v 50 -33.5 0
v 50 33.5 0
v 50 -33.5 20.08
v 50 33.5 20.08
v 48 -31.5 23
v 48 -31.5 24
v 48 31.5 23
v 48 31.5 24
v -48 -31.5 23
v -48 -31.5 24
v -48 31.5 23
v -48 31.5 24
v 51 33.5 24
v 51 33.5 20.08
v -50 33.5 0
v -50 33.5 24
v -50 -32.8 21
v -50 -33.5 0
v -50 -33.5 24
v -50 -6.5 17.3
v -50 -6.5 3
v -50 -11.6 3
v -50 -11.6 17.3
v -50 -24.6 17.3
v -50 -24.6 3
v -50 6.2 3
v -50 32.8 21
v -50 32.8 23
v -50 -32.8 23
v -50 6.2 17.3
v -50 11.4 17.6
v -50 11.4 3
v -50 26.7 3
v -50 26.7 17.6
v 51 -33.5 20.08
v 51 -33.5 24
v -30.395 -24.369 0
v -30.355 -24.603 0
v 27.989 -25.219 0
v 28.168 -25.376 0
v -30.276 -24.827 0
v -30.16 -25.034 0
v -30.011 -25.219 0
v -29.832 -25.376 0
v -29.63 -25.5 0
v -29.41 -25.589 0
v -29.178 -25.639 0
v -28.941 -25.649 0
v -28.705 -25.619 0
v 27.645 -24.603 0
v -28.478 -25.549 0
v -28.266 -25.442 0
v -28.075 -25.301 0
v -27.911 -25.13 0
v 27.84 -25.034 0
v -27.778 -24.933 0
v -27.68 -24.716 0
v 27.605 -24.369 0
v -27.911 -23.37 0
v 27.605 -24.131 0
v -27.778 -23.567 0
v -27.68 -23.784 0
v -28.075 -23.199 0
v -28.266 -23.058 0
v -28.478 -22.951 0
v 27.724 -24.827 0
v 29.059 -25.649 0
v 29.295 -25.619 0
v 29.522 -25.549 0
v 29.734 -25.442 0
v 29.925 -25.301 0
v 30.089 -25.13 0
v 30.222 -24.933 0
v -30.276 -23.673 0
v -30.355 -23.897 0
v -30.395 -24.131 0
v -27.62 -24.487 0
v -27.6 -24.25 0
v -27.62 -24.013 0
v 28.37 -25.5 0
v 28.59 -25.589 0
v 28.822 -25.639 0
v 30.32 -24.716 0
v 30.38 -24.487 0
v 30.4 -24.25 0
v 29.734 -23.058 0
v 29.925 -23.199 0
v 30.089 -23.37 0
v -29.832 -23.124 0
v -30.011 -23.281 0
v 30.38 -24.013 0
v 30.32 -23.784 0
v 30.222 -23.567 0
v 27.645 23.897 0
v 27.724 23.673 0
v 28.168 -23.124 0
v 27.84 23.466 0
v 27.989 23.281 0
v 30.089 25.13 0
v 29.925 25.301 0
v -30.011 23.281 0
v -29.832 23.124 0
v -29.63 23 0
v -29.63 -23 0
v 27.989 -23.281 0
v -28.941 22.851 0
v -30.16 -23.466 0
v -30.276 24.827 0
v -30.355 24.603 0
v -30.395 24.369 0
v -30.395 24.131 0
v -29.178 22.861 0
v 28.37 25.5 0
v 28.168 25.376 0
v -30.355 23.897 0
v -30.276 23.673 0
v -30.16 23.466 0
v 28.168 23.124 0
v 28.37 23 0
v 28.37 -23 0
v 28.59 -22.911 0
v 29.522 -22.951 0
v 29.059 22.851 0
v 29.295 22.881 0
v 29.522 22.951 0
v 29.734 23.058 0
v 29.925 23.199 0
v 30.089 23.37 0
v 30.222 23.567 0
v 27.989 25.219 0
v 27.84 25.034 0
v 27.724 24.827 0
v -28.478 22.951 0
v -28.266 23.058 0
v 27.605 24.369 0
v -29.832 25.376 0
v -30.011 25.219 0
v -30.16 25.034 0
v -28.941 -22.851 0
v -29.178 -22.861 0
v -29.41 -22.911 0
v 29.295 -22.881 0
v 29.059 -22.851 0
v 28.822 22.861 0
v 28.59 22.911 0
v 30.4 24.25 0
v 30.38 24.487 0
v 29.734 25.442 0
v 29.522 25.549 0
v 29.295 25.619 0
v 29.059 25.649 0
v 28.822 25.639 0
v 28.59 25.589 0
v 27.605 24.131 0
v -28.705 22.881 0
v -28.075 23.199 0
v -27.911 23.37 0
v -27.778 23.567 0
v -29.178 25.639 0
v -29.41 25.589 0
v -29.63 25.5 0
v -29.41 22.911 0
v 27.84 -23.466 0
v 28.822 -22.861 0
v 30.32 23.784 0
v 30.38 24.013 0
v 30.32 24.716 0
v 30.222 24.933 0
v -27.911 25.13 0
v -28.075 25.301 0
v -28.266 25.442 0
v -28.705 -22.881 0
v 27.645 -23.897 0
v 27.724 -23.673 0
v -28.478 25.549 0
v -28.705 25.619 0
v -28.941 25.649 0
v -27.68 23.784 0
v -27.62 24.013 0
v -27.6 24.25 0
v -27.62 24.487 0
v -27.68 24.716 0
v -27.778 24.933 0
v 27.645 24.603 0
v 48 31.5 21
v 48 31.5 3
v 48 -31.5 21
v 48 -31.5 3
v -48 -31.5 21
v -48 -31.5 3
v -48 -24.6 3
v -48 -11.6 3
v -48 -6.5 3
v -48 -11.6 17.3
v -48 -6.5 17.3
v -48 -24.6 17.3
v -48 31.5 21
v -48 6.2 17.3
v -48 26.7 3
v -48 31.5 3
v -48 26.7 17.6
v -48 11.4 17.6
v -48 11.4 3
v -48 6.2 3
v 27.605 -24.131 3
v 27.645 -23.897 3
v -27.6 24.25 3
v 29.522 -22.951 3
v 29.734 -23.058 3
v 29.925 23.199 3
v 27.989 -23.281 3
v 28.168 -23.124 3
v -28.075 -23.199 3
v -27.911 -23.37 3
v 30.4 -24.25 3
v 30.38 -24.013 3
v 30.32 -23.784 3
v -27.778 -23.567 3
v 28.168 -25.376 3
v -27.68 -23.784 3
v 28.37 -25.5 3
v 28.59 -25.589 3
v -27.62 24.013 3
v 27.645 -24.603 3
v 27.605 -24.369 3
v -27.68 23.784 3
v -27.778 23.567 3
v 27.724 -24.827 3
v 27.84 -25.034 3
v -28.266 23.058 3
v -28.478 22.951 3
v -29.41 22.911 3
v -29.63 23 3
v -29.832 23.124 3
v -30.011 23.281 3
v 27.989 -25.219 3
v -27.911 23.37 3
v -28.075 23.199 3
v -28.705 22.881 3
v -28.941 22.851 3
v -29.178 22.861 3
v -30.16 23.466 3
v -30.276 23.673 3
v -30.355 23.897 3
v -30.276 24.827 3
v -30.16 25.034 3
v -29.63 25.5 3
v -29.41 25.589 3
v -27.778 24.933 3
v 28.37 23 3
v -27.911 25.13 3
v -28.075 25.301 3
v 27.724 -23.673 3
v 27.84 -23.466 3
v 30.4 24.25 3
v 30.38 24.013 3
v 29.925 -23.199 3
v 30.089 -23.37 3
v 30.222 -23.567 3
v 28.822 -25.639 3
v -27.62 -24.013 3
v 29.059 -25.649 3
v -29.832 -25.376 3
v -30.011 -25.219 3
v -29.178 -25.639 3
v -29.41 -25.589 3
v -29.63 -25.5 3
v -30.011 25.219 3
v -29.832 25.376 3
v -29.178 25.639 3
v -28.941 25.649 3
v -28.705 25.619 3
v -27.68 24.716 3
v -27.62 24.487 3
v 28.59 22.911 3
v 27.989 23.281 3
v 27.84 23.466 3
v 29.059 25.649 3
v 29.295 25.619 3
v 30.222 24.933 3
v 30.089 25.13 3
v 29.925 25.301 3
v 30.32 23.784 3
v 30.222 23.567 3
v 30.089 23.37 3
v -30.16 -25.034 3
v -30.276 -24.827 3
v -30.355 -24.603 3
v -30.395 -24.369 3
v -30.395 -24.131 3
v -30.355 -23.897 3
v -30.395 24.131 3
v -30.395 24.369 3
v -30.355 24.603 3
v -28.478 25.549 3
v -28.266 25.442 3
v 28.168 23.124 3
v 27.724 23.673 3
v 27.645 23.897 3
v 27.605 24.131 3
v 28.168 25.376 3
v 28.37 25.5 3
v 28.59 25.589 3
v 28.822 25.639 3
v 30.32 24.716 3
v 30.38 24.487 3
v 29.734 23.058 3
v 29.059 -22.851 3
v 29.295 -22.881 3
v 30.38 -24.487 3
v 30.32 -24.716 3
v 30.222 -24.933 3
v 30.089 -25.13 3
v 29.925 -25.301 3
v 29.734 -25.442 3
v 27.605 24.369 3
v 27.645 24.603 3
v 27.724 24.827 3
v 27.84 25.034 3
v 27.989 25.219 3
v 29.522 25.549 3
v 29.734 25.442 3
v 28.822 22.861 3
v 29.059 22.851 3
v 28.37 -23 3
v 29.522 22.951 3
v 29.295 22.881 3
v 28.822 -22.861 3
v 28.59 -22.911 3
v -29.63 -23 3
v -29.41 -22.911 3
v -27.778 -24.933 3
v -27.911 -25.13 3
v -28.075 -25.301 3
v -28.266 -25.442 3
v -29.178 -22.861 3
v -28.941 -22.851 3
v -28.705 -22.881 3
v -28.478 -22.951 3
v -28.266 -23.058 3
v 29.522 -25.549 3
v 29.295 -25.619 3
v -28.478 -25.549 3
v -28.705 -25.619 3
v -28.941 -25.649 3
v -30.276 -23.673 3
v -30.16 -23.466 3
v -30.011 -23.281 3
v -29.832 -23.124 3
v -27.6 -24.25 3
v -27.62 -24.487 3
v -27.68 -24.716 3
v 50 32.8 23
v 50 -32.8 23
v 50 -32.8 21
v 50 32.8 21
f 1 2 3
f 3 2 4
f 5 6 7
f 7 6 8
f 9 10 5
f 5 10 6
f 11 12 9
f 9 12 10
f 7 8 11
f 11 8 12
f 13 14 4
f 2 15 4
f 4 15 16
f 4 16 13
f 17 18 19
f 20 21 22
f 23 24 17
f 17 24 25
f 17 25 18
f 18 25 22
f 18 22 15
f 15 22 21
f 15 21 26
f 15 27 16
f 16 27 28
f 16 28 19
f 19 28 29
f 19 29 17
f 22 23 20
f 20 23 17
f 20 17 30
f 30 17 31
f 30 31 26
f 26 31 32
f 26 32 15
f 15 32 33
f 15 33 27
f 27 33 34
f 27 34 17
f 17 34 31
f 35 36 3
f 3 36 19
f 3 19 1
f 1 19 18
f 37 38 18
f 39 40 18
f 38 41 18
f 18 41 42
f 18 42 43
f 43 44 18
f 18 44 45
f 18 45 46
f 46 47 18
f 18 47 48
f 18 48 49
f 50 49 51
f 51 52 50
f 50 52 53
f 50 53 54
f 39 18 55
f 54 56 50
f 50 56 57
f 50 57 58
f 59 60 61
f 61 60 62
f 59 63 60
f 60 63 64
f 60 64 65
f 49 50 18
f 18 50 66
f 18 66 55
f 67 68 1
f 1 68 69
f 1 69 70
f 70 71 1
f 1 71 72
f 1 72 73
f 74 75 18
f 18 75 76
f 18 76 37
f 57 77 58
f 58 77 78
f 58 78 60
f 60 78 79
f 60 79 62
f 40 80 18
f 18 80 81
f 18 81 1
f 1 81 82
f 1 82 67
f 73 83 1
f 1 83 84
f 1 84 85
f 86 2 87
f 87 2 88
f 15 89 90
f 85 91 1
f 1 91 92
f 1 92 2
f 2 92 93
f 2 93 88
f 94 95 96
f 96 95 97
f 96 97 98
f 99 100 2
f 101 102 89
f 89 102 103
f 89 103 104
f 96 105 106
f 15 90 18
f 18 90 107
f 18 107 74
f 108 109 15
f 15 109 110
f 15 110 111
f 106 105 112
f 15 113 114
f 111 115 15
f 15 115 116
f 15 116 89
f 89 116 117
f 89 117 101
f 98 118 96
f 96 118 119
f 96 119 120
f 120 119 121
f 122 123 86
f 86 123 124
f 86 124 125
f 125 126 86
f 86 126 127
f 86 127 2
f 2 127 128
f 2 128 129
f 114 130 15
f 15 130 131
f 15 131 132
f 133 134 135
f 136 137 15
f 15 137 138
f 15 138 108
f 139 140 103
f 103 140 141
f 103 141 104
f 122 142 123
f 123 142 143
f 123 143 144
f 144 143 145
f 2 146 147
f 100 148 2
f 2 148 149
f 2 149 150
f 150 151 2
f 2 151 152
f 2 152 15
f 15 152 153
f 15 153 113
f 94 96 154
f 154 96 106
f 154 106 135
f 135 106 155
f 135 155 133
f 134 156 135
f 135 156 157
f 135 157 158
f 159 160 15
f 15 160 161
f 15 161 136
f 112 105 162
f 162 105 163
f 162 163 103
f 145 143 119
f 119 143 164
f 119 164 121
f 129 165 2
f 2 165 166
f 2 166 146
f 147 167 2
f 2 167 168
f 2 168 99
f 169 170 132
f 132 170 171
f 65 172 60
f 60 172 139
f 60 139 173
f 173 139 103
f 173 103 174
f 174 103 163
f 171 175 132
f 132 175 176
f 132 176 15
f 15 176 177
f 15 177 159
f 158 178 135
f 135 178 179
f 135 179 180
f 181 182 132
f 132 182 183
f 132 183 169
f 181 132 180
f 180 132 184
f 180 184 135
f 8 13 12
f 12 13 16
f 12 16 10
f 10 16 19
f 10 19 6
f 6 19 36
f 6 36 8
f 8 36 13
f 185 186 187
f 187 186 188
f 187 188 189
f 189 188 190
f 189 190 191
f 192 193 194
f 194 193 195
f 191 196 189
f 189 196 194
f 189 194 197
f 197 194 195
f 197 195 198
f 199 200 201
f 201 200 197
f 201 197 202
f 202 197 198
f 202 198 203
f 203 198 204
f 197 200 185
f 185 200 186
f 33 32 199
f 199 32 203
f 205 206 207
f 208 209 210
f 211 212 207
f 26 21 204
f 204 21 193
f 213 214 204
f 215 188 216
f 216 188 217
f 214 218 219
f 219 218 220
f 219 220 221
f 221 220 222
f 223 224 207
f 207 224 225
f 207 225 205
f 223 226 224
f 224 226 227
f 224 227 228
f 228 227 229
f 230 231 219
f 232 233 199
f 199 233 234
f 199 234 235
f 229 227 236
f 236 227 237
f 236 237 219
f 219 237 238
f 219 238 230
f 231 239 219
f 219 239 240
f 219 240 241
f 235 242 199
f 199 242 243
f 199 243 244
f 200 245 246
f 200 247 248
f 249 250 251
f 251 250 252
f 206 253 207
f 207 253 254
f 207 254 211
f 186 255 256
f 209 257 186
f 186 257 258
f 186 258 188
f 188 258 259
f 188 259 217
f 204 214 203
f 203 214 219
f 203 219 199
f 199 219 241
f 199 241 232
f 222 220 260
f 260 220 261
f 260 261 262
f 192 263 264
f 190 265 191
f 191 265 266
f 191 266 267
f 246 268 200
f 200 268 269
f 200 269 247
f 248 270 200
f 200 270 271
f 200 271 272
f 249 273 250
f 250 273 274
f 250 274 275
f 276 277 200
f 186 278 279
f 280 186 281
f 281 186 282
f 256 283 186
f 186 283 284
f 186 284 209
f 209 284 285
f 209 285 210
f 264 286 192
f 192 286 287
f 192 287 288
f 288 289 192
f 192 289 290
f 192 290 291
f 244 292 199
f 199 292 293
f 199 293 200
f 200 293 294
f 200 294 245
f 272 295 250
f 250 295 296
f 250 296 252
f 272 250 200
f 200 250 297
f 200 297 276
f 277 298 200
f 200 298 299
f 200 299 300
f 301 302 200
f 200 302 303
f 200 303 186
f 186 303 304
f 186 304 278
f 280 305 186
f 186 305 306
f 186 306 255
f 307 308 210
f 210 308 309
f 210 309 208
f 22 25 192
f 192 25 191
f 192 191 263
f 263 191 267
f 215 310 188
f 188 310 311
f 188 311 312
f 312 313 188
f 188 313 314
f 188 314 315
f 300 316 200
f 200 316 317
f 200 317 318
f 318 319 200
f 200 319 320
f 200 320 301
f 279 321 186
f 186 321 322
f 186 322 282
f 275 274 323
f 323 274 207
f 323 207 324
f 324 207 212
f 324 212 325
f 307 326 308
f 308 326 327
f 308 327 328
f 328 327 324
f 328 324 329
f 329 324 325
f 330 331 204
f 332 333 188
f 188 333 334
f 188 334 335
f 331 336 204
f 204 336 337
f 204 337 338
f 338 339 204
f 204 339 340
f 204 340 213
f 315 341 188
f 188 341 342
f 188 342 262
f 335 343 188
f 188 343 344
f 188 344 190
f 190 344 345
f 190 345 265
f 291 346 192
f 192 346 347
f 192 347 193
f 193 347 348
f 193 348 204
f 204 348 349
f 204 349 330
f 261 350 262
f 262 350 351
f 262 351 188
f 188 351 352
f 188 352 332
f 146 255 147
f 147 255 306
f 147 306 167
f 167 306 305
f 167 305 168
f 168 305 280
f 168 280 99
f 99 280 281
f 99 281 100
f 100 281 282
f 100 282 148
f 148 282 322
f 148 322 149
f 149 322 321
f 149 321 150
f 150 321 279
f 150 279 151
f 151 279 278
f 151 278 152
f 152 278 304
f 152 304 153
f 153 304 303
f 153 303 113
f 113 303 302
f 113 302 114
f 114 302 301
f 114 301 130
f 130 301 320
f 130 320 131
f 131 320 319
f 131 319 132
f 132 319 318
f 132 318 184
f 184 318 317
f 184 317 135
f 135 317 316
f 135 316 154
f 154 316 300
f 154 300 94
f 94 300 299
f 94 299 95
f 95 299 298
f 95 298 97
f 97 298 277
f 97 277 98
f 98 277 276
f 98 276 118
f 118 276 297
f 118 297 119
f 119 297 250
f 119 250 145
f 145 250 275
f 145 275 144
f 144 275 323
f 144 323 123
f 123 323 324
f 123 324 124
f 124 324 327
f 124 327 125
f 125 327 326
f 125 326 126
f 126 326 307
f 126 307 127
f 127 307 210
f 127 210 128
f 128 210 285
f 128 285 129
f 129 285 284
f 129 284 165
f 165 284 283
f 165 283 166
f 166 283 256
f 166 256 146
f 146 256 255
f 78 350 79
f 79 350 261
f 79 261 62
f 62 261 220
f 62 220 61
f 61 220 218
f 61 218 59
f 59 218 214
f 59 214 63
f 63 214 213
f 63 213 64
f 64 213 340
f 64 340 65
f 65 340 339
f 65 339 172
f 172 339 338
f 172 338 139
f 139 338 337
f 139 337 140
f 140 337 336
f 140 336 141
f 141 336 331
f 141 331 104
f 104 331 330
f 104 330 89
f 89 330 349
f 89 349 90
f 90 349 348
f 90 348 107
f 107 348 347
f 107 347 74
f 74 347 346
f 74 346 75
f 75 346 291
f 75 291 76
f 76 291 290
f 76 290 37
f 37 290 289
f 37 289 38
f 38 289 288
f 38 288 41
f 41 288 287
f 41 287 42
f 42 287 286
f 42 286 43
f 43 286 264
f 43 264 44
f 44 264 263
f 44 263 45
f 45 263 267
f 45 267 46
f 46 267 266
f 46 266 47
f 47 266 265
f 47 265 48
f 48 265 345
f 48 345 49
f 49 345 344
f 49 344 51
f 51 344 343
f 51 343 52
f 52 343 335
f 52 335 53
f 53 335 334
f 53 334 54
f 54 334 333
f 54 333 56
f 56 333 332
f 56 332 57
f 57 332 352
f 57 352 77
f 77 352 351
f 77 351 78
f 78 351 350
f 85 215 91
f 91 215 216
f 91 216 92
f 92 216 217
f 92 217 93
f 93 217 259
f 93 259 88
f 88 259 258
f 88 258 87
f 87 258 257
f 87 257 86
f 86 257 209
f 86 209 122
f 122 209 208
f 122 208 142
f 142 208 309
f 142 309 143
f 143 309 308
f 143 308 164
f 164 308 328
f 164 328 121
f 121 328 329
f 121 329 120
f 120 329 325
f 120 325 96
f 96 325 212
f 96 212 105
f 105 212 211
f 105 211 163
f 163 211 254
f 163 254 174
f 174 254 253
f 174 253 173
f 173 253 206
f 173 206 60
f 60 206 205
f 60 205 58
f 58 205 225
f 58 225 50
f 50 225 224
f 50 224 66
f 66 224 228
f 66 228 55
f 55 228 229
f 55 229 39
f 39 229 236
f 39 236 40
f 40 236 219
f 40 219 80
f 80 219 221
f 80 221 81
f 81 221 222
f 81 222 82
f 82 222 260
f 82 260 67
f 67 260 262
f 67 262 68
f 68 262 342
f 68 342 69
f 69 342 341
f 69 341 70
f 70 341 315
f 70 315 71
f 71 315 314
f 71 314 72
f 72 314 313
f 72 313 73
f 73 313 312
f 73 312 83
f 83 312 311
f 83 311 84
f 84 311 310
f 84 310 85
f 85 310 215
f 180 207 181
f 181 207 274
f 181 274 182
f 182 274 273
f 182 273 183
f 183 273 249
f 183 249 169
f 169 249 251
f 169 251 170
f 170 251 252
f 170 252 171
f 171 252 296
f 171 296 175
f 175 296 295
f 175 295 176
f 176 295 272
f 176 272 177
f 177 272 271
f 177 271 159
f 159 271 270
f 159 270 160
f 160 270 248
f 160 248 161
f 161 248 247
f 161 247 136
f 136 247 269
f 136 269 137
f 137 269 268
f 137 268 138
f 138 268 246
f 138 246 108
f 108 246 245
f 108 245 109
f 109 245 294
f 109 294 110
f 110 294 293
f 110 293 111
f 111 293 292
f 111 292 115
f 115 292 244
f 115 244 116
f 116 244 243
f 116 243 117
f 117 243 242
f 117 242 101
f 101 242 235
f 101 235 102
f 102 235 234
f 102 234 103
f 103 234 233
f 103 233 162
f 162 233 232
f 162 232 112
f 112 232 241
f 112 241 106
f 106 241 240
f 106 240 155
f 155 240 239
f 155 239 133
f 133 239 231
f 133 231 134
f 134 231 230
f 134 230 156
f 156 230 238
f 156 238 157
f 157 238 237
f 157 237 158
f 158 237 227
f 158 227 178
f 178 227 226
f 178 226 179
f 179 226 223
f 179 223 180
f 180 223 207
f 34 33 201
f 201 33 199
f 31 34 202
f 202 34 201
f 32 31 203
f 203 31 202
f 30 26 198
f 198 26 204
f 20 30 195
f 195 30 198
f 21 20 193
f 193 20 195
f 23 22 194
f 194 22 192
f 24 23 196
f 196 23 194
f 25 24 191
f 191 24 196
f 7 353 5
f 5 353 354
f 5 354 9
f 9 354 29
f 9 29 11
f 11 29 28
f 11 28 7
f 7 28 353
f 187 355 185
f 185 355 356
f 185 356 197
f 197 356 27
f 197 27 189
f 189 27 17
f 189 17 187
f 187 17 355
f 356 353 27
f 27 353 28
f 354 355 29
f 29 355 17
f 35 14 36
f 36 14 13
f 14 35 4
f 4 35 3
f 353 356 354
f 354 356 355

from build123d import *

# Parameters (mm, degrees)
SKETCH2_W           = 100
SKETCH2_H           = 67
BOSS_EXTRUDE1_DEPTH = 3
SKETCH3_W           = 100
SKETCH3_H           = 67
BOSS_EXTRUDE2_DEPTH = 21
SKETCH4_W           = 96
SKETCH4_H           = 63
CUT_EXTRUDE1_DEPTH  = 21
SKETCH5_R           = 1.4
CUT_EXTRUDE2_DEPTH  = 3
SKETCH9_W           = 14.3
SKETCH9_H           = 13
SKETCH9_H_2         = 12.7
SKETCH9_W_2         = 14.6
SKETCH9_H_3         = 15.3
CUT_EXTRUDE5_DEPTH  = 2
CUT_EXTRUDE7_START  = -100
SKETCH12_W          = 2
SKETCH12_H          = 65.6
CUT_EXTRUDE7_DEPTH  = 100
SKETCH16_W          = 3.920339225
SKETCH16_H          = 67
BOSS_EXTRUDE3_DEPTH = 1


with BuildPart() as part:
    # Sketch2 → Boss-Extrude1 (new body)
    with BuildSketch(Plane.XY):
        Rectangle(SKETCH2_W, SKETCH2_H)
    extrude(amount=BOSS_EXTRUDE1_DEPTH)

    # Sketch3 → Boss-Extrude2 (add)
    with BuildSketch(Plane.XY.offset(3)):
        Rectangle(SKETCH3_W, SKETCH3_H)
    extrude(amount=BOSS_EXTRUDE2_DEPTH)

    # Sketch4 → Cut-Extrude1 (cut)
    with BuildSketch(Plane.XY.offset(24)):
        Rectangle(SKETCH4_W, SKETCH4_H)
    extrude(amount=-CUT_EXTRUDE1_DEPTH, mode=Mode.SUBTRACT)

    # Sketch5 → Cut-Extrude2 (cut)
    with BuildSketch(Plane.XY.offset(3)):
        with Locations((-29, 24.25)):
            Circle(SKETCH5_R)
        with Locations((29, 24.25)):
            Circle(SKETCH5_R)
        with Locations((29, -24.25)):
            Circle(SKETCH5_R)
        with Locations((-29, -24.25)):
            Circle(SKETCH5_R)
    extrude(amount=-CUT_EXTRUDE2_DEPTH, mode=Mode.SUBTRACT)

    # Sketch9 → Cut-Extrude5 (cut)
    with BuildSketch(Plane.ZY.offset(50)):
        with Locations((10.15, -18.1)):
            Rectangle(SKETCH9_W, SKETCH9_H)
        with Locations((10.15, -0.15)):
            Rectangle(SKETCH9_W, SKETCH9_H_2)
        with Locations((10.3, 19.05)):
            Rectangle(SKETCH9_W_2, SKETCH9_H_3)
    extrude(amount=-CUT_EXTRUDE5_DEPTH, mode=Mode.SUBTRACT)

    # Sketch12 → Cut-Extrude7 (cut)
    with BuildSketch(Plane(origin=(50, 0, 0), x_dir=(0, 0, -1), z_dir=(1, 0, 0)).offset(CUT_EXTRUDE7_START)):
        with Locations((-22, 0)):
            Rectangle(SKETCH12_W, SKETCH12_H)
    extrude(amount=CUT_EXTRUDE7_DEPTH, mode=Mode.SUBTRACT)

    # Sketch16 → Boss-Extrude3 (add)
    with BuildSketch(Plane(origin=(50, 0, 0), x_dir=(0, 0, -1), z_dir=(1, 0, 0))):
        with Locations((-22.039830388, 0)):
            Rectangle(SKETCH16_W, SKETCH16_H)
    extrude(amount=BOSS_EXTRUDE3_DEPTH)


solid = part.part
